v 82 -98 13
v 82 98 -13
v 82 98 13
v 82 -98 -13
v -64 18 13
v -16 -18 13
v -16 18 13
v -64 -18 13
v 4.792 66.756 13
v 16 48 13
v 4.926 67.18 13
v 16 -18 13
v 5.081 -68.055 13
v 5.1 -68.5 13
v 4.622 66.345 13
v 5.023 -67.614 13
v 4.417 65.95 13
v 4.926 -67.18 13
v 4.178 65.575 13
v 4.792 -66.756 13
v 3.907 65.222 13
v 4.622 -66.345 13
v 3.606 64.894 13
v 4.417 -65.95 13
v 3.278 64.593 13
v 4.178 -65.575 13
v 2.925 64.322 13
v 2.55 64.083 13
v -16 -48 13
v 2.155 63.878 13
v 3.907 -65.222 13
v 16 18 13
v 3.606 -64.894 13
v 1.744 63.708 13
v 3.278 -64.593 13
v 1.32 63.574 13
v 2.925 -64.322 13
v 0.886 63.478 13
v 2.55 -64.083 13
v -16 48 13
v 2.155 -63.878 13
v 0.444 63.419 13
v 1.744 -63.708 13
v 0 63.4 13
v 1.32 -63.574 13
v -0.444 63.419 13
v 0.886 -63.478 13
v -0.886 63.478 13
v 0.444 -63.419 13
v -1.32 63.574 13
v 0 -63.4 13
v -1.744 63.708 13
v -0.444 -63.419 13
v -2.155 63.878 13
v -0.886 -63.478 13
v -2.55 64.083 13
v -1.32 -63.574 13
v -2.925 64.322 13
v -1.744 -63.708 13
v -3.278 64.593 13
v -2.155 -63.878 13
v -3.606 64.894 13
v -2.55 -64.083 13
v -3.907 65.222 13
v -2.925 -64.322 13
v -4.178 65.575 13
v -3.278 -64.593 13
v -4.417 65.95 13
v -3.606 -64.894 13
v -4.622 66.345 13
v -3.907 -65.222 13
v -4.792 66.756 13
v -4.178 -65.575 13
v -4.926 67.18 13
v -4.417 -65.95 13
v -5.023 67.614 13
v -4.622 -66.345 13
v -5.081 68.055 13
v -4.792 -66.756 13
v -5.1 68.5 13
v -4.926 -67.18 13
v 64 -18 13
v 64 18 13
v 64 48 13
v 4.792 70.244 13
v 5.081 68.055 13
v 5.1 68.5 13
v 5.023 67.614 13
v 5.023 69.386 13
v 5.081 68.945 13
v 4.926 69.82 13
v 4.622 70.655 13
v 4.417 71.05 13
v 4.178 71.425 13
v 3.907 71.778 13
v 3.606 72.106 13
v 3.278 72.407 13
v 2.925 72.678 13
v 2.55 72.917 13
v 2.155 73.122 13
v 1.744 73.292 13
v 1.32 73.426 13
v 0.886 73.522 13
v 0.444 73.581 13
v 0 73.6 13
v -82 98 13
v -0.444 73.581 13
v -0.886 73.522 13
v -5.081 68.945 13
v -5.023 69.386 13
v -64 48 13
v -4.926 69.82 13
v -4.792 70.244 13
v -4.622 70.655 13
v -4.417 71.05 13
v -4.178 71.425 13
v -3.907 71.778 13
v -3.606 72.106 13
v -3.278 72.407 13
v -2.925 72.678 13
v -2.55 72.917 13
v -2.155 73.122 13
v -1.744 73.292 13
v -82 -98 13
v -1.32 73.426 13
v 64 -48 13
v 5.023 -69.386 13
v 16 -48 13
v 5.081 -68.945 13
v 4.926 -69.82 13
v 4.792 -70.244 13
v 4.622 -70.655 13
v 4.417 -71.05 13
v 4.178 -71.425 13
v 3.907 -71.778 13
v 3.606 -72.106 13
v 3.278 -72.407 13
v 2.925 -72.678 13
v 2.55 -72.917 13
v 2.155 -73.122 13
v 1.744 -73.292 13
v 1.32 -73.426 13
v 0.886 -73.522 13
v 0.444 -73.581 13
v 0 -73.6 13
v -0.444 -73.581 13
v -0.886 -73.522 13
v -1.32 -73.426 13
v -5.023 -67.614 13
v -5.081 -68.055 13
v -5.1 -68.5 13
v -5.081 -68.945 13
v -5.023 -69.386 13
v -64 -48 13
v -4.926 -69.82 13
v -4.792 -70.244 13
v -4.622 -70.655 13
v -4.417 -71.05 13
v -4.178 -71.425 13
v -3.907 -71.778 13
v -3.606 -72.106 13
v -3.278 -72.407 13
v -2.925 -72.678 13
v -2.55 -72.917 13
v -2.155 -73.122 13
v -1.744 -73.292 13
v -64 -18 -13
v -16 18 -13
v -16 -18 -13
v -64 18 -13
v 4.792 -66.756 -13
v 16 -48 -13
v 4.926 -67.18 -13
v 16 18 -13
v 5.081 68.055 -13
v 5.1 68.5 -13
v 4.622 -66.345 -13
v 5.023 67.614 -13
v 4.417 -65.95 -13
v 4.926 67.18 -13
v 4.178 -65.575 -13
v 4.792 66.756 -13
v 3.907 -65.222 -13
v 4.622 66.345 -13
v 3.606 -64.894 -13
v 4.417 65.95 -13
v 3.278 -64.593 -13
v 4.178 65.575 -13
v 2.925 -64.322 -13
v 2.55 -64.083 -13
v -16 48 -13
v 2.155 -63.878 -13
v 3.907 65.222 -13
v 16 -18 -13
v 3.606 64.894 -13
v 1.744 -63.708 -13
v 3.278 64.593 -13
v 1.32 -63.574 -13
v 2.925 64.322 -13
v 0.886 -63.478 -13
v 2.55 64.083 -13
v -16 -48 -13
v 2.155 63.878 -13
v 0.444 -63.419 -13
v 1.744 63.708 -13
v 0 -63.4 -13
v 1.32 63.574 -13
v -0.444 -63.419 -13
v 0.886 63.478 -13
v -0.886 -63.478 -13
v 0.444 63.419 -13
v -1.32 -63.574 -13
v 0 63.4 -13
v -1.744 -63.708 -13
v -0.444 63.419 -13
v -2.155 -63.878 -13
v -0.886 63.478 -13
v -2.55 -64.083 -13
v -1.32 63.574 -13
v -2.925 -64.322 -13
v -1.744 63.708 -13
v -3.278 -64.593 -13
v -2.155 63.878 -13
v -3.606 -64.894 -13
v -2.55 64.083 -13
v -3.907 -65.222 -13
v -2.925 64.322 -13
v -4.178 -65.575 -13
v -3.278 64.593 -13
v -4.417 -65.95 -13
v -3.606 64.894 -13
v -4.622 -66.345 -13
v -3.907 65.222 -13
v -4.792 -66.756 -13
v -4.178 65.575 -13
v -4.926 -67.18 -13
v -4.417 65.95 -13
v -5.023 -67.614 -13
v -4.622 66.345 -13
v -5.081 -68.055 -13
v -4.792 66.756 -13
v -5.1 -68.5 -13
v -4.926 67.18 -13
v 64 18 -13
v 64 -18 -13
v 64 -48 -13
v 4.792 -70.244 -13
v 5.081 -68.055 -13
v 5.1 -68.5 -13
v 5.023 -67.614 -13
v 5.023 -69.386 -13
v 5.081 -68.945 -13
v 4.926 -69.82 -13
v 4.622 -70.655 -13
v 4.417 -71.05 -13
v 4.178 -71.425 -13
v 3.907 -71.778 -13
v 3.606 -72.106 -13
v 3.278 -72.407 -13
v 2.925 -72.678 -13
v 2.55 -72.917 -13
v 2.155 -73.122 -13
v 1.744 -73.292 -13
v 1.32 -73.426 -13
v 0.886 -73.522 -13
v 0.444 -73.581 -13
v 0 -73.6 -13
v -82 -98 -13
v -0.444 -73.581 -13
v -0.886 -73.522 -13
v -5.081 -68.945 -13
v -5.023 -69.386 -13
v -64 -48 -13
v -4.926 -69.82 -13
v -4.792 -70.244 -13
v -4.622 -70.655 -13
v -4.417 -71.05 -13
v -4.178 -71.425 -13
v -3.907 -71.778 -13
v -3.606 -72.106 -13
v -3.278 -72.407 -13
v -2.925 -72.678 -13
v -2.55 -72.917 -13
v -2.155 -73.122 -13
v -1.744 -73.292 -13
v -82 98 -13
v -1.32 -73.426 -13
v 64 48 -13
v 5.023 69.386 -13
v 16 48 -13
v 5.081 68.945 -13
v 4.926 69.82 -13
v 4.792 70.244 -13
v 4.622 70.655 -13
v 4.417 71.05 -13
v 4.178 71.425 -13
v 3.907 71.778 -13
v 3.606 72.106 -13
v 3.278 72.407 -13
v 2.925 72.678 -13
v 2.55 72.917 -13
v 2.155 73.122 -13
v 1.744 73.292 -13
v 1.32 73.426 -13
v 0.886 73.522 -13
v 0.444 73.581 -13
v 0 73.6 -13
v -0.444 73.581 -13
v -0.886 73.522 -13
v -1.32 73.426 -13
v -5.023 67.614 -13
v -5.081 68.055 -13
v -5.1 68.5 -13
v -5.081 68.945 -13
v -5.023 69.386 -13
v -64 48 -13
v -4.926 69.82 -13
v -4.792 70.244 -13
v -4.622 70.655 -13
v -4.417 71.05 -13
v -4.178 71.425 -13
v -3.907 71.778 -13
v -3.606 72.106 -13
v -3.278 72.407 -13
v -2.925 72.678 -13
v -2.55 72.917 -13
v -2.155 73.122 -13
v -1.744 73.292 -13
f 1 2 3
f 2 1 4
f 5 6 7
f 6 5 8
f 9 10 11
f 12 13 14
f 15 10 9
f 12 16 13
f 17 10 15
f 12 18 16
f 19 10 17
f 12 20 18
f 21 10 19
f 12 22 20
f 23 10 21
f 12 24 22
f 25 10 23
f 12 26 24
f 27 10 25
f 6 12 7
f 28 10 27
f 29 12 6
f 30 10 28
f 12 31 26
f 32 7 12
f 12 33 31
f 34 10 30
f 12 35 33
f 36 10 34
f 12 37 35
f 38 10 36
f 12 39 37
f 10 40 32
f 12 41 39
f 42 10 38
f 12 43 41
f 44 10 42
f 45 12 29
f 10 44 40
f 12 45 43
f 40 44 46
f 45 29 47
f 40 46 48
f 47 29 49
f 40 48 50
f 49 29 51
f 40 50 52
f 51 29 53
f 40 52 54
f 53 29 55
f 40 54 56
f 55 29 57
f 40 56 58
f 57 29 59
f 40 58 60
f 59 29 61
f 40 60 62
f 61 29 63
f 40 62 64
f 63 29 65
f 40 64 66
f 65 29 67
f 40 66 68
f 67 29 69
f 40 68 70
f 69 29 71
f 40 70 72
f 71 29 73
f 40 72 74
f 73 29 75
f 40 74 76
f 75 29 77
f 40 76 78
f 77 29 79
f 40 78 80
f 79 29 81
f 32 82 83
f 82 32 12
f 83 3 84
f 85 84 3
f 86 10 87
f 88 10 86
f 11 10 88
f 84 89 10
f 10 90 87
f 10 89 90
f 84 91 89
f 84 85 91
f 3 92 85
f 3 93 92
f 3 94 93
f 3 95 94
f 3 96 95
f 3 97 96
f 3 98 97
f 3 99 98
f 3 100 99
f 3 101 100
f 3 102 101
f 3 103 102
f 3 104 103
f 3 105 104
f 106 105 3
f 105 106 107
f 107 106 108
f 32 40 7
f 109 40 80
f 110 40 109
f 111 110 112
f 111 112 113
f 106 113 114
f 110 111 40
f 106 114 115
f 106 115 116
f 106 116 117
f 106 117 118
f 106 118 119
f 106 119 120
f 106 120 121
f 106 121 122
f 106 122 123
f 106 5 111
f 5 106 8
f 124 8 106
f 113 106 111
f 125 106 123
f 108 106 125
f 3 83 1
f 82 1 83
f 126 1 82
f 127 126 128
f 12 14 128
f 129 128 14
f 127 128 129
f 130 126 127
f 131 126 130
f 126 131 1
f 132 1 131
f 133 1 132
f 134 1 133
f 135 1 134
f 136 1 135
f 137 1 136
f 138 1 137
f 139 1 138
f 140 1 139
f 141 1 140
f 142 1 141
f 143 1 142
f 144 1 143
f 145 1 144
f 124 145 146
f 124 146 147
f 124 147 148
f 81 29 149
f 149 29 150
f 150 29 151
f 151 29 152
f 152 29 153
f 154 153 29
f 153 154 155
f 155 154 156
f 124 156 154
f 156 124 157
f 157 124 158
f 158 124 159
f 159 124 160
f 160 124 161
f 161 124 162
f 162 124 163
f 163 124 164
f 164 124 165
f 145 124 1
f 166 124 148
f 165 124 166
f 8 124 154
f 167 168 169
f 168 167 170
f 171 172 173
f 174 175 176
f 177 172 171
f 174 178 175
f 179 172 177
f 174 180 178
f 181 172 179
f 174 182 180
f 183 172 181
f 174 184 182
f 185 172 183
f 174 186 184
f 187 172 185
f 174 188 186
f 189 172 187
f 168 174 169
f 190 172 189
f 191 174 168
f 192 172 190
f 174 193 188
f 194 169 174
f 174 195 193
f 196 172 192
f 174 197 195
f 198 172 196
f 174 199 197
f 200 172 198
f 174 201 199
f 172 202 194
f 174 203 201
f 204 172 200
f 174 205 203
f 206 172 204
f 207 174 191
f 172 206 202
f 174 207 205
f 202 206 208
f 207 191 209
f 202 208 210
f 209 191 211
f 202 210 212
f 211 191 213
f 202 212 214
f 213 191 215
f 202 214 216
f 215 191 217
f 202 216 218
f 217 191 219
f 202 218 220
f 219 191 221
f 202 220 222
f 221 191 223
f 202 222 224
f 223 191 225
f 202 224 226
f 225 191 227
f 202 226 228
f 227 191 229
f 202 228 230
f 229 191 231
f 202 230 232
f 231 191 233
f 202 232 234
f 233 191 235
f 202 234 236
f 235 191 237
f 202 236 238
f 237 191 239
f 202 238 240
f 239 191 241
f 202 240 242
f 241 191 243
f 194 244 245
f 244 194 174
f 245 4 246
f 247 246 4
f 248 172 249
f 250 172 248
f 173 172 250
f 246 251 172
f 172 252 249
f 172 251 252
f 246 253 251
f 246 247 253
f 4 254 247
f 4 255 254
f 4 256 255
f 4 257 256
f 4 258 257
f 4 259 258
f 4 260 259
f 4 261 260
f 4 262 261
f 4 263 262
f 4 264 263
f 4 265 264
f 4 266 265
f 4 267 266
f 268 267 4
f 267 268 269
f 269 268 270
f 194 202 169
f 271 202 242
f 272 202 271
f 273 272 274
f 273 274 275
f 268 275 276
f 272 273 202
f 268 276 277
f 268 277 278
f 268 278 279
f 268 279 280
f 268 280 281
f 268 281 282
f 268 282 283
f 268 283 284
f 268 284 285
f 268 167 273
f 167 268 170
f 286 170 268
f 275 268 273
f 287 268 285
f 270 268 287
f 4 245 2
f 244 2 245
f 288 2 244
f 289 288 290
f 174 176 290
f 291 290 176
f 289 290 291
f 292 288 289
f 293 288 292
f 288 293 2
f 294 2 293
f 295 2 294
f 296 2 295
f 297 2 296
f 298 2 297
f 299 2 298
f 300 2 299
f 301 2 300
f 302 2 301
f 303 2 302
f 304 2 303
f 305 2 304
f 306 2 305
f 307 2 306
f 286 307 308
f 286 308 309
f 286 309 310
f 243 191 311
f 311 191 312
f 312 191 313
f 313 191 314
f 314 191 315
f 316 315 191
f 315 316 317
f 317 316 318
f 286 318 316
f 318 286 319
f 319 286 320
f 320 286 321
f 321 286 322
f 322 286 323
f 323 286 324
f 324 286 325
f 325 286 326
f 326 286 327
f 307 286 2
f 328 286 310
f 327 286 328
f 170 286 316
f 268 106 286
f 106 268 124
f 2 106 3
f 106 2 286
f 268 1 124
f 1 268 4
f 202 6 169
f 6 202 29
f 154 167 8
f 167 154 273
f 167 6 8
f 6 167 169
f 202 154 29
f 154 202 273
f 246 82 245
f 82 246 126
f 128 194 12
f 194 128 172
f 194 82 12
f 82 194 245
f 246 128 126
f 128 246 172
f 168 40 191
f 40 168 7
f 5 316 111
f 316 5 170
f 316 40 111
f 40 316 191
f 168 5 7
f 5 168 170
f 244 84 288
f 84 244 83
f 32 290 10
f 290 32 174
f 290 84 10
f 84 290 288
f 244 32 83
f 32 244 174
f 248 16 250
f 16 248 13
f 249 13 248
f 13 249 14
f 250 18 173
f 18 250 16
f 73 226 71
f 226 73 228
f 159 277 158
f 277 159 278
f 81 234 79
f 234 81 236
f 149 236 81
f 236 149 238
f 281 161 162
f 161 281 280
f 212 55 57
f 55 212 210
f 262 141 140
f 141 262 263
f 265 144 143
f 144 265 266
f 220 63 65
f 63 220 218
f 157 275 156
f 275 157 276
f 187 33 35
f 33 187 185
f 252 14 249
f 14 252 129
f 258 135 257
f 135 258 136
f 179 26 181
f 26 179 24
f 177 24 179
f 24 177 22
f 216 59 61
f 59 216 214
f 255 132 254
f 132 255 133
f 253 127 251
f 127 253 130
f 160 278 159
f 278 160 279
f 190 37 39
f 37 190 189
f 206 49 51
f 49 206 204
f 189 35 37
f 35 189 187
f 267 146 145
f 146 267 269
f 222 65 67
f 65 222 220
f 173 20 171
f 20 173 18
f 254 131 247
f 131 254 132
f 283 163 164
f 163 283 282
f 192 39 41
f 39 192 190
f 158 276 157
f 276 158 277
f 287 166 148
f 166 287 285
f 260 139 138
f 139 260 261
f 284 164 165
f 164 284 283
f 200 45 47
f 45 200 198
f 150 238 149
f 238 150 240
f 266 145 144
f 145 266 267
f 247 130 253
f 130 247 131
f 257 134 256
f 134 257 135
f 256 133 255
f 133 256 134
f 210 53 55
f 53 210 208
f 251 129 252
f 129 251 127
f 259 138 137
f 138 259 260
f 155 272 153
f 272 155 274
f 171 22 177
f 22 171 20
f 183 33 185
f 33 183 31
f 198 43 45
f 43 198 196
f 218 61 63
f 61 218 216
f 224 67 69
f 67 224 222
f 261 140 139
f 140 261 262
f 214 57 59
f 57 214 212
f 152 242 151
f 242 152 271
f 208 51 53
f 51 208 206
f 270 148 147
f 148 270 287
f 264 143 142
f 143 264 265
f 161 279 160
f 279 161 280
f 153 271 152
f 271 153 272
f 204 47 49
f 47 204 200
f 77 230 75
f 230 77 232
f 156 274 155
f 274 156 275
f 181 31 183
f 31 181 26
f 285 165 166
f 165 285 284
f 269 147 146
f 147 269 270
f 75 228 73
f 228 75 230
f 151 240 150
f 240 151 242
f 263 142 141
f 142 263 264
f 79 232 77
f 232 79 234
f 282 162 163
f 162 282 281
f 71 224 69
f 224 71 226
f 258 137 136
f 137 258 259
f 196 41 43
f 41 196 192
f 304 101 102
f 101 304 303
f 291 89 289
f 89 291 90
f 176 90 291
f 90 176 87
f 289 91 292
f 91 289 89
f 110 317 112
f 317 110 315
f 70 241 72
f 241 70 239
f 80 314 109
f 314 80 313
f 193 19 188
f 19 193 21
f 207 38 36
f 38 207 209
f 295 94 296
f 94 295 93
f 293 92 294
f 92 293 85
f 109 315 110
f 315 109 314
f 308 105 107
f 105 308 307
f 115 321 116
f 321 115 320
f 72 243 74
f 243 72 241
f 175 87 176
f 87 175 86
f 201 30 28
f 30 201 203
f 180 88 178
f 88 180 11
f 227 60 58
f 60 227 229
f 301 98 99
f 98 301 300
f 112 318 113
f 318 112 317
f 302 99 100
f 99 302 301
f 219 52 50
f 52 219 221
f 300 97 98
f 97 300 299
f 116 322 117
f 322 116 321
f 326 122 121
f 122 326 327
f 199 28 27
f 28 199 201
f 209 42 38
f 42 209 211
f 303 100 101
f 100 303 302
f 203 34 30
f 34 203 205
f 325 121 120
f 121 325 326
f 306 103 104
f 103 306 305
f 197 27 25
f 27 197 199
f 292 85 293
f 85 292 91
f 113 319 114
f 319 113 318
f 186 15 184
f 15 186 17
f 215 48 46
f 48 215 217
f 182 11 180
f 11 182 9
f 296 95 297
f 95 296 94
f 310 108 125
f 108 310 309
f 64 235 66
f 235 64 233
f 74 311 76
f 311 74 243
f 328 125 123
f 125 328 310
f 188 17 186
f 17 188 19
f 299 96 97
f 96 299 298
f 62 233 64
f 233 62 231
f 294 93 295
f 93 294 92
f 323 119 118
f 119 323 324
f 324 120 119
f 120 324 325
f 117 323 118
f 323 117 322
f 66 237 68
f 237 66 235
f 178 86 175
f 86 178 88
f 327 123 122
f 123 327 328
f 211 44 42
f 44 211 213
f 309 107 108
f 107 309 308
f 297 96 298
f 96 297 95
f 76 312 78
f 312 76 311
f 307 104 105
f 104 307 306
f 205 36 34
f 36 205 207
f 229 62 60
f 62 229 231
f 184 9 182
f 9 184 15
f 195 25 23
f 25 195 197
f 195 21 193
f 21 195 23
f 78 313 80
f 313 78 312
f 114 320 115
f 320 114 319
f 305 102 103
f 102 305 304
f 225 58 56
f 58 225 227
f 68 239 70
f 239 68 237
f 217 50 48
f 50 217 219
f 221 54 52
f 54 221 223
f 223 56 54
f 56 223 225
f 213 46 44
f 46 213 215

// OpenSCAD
$fn=72;
H=26;
difference(){
  translate([-82,-98,-H/2]) cube([164,196,H]);

  // Four relief windows; edge rails and central cross remain continuous.
  translate([-64,-48,-20]) cube([48,30,40]);
  translate([16,-48,-20]) cube([48,30,40]);
  translate([-64,18,-20]) cube([48,30,40]);
  translate([16,18,-20]) cube([48,30,40]);

  // 5x10x4 bearing pockets around 5 mm steel pivot shafts.
  translate([0,-68.5,-20]) cylinder(h=40,d=10.2);
  translate([0,68.5,-20]) cylinder(h=40,d=10.2);
}
